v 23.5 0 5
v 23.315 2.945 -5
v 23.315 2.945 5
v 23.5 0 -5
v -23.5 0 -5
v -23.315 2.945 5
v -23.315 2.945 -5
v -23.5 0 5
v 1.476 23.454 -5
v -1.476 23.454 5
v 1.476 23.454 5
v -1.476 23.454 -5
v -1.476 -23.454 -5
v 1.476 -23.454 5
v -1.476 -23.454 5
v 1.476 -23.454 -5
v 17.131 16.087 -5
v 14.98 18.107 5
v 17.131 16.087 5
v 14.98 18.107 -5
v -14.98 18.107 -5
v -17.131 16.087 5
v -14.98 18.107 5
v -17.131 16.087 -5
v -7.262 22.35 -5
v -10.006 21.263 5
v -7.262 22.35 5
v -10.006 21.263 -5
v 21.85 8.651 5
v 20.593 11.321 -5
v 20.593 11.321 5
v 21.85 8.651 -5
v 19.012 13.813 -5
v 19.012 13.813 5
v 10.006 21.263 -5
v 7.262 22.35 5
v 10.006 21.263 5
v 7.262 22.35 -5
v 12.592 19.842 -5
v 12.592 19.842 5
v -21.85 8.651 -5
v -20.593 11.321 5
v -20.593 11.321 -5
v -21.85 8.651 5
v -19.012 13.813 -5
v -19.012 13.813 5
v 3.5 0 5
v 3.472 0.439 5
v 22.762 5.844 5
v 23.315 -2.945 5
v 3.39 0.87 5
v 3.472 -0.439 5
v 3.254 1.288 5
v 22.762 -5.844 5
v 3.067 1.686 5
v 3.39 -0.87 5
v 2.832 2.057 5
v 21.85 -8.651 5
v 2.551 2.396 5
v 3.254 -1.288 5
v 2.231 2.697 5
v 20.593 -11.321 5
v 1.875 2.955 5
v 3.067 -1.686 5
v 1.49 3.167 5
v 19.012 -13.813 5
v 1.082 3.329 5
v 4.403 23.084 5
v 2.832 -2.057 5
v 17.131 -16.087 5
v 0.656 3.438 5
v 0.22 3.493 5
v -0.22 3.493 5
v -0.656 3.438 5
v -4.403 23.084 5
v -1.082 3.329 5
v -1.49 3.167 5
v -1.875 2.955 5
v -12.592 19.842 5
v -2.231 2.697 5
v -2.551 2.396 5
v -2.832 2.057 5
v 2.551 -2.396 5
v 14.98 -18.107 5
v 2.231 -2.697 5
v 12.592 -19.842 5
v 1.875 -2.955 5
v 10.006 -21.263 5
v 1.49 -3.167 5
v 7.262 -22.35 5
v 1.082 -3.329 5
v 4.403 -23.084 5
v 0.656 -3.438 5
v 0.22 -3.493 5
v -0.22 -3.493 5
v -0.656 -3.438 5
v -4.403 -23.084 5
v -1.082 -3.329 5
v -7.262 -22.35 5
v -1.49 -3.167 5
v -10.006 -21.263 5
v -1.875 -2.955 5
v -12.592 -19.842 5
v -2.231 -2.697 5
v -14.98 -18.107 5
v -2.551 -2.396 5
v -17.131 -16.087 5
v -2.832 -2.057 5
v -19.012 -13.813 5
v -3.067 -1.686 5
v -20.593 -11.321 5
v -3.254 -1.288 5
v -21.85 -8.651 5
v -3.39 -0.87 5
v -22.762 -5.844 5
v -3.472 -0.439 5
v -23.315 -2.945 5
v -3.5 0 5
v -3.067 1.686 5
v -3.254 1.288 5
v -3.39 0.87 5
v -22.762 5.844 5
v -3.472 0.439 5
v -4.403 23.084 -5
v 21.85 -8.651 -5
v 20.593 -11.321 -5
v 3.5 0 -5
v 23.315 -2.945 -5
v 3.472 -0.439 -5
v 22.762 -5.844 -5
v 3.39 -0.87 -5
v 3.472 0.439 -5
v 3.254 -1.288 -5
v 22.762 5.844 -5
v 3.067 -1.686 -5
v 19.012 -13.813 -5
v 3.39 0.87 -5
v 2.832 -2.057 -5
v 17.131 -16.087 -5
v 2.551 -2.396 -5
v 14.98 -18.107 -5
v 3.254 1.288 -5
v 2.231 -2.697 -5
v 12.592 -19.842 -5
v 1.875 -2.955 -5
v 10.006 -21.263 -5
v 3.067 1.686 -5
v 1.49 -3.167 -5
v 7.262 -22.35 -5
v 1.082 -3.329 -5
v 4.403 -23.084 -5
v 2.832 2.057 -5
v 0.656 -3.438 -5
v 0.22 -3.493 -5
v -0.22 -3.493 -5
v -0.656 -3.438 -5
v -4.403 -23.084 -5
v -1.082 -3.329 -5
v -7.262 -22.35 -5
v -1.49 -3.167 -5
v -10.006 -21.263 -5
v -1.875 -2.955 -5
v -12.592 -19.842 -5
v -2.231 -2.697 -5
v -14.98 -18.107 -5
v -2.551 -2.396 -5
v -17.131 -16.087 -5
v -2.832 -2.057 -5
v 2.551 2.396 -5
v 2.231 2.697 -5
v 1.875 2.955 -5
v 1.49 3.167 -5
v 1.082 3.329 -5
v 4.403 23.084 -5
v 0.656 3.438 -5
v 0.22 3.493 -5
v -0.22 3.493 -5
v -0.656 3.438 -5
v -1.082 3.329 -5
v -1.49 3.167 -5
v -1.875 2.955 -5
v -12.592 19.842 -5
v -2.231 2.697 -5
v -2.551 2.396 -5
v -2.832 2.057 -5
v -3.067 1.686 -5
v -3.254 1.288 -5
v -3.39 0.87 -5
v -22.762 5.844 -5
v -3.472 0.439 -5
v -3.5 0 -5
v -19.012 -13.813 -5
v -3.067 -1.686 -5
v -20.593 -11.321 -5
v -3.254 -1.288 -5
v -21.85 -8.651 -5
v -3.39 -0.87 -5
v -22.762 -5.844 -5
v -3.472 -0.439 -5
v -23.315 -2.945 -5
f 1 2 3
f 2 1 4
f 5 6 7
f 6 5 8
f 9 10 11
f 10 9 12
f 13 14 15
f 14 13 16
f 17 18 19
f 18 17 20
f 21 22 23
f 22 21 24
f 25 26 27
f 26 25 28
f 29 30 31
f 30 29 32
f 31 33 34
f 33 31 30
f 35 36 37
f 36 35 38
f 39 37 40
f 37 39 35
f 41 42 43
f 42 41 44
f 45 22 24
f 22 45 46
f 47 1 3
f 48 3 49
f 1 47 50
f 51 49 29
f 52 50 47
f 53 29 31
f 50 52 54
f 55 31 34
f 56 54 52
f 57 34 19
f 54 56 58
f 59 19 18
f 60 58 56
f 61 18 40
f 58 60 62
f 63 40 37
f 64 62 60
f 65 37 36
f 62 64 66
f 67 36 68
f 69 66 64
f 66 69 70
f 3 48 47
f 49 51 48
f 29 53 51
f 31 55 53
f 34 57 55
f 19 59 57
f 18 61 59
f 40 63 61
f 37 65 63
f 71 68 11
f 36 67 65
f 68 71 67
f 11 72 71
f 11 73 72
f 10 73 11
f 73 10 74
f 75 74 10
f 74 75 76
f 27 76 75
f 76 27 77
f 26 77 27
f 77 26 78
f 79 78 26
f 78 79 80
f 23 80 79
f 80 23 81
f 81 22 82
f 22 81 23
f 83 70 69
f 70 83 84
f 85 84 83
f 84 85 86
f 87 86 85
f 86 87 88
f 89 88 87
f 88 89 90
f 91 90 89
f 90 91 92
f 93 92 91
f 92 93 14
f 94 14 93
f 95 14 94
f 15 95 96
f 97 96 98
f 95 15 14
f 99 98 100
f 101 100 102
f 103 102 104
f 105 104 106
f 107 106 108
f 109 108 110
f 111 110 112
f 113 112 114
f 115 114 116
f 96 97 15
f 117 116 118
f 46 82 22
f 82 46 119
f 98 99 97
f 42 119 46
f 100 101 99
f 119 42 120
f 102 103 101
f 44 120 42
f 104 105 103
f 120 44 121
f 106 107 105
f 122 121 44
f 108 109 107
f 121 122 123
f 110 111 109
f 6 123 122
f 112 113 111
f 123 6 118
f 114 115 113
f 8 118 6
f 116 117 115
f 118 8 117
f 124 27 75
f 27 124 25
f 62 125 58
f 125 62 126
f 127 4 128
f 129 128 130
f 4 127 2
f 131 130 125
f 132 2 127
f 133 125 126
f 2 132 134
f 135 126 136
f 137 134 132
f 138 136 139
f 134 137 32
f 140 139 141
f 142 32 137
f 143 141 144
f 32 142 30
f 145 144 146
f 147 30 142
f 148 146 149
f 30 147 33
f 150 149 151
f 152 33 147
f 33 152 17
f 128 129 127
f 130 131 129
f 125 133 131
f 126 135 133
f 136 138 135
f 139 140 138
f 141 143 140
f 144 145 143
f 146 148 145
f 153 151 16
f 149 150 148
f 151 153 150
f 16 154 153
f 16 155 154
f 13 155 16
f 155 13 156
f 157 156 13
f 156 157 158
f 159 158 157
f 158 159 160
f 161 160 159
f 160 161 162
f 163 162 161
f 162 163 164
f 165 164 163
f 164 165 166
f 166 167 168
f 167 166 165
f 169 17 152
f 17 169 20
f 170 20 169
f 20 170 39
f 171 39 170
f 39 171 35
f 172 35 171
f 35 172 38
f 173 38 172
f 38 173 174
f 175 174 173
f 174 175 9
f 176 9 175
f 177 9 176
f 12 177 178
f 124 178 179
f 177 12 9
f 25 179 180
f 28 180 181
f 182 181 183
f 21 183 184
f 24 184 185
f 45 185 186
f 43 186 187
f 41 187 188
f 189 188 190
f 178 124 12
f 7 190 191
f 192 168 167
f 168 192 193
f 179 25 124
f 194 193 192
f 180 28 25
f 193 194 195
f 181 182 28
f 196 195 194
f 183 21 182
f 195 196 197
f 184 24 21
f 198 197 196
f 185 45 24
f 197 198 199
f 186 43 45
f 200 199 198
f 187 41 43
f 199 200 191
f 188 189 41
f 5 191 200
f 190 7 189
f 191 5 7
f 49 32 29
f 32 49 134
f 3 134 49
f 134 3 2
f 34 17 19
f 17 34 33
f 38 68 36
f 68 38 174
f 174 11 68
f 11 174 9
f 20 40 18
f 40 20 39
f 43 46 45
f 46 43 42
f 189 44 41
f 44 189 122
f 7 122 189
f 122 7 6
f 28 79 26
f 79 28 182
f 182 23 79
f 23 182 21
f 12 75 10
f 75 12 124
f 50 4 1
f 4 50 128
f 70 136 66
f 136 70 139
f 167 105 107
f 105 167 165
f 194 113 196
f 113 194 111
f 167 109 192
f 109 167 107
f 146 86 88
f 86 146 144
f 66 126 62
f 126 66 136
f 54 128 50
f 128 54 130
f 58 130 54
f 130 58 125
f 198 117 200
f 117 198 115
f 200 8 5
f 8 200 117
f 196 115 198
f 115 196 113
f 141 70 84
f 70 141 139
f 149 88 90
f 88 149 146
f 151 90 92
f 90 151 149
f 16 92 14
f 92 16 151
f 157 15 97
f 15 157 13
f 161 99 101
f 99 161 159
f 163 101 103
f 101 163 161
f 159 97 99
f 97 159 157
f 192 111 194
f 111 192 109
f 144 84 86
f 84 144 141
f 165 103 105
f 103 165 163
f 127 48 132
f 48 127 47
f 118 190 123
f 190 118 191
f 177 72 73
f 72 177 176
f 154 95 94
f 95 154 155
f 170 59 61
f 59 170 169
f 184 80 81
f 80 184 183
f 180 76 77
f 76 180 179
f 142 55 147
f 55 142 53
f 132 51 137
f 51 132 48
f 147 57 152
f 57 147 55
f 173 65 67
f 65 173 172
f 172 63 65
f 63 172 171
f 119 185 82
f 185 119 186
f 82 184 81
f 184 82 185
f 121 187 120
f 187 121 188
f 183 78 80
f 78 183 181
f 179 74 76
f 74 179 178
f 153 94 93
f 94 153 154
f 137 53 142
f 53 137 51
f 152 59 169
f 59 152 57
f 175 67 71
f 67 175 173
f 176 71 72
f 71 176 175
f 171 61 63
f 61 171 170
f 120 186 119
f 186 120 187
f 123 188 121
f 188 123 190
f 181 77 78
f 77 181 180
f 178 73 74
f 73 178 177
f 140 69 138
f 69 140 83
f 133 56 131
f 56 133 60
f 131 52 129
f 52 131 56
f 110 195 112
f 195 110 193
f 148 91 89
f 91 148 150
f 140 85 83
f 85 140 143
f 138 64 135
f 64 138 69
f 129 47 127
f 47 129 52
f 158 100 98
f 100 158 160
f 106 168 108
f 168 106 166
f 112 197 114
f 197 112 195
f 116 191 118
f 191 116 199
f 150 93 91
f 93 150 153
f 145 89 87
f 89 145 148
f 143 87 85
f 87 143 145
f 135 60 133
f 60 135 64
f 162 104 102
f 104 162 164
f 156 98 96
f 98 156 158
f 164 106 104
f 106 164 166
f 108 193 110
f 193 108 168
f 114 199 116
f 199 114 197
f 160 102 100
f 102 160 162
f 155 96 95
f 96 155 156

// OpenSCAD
$fn = 50;


difference() {
	union() {
		translate(v = [0, 0, -5.0000000000]) {
			cylinder(h = 10, r = 23.5000000000);
		}
	}
	union() {
		translate(v = [0, 0, -100.0000000000]) {
			cylinder(h = 200, r = 3.5000000000);
		}
	}
}
